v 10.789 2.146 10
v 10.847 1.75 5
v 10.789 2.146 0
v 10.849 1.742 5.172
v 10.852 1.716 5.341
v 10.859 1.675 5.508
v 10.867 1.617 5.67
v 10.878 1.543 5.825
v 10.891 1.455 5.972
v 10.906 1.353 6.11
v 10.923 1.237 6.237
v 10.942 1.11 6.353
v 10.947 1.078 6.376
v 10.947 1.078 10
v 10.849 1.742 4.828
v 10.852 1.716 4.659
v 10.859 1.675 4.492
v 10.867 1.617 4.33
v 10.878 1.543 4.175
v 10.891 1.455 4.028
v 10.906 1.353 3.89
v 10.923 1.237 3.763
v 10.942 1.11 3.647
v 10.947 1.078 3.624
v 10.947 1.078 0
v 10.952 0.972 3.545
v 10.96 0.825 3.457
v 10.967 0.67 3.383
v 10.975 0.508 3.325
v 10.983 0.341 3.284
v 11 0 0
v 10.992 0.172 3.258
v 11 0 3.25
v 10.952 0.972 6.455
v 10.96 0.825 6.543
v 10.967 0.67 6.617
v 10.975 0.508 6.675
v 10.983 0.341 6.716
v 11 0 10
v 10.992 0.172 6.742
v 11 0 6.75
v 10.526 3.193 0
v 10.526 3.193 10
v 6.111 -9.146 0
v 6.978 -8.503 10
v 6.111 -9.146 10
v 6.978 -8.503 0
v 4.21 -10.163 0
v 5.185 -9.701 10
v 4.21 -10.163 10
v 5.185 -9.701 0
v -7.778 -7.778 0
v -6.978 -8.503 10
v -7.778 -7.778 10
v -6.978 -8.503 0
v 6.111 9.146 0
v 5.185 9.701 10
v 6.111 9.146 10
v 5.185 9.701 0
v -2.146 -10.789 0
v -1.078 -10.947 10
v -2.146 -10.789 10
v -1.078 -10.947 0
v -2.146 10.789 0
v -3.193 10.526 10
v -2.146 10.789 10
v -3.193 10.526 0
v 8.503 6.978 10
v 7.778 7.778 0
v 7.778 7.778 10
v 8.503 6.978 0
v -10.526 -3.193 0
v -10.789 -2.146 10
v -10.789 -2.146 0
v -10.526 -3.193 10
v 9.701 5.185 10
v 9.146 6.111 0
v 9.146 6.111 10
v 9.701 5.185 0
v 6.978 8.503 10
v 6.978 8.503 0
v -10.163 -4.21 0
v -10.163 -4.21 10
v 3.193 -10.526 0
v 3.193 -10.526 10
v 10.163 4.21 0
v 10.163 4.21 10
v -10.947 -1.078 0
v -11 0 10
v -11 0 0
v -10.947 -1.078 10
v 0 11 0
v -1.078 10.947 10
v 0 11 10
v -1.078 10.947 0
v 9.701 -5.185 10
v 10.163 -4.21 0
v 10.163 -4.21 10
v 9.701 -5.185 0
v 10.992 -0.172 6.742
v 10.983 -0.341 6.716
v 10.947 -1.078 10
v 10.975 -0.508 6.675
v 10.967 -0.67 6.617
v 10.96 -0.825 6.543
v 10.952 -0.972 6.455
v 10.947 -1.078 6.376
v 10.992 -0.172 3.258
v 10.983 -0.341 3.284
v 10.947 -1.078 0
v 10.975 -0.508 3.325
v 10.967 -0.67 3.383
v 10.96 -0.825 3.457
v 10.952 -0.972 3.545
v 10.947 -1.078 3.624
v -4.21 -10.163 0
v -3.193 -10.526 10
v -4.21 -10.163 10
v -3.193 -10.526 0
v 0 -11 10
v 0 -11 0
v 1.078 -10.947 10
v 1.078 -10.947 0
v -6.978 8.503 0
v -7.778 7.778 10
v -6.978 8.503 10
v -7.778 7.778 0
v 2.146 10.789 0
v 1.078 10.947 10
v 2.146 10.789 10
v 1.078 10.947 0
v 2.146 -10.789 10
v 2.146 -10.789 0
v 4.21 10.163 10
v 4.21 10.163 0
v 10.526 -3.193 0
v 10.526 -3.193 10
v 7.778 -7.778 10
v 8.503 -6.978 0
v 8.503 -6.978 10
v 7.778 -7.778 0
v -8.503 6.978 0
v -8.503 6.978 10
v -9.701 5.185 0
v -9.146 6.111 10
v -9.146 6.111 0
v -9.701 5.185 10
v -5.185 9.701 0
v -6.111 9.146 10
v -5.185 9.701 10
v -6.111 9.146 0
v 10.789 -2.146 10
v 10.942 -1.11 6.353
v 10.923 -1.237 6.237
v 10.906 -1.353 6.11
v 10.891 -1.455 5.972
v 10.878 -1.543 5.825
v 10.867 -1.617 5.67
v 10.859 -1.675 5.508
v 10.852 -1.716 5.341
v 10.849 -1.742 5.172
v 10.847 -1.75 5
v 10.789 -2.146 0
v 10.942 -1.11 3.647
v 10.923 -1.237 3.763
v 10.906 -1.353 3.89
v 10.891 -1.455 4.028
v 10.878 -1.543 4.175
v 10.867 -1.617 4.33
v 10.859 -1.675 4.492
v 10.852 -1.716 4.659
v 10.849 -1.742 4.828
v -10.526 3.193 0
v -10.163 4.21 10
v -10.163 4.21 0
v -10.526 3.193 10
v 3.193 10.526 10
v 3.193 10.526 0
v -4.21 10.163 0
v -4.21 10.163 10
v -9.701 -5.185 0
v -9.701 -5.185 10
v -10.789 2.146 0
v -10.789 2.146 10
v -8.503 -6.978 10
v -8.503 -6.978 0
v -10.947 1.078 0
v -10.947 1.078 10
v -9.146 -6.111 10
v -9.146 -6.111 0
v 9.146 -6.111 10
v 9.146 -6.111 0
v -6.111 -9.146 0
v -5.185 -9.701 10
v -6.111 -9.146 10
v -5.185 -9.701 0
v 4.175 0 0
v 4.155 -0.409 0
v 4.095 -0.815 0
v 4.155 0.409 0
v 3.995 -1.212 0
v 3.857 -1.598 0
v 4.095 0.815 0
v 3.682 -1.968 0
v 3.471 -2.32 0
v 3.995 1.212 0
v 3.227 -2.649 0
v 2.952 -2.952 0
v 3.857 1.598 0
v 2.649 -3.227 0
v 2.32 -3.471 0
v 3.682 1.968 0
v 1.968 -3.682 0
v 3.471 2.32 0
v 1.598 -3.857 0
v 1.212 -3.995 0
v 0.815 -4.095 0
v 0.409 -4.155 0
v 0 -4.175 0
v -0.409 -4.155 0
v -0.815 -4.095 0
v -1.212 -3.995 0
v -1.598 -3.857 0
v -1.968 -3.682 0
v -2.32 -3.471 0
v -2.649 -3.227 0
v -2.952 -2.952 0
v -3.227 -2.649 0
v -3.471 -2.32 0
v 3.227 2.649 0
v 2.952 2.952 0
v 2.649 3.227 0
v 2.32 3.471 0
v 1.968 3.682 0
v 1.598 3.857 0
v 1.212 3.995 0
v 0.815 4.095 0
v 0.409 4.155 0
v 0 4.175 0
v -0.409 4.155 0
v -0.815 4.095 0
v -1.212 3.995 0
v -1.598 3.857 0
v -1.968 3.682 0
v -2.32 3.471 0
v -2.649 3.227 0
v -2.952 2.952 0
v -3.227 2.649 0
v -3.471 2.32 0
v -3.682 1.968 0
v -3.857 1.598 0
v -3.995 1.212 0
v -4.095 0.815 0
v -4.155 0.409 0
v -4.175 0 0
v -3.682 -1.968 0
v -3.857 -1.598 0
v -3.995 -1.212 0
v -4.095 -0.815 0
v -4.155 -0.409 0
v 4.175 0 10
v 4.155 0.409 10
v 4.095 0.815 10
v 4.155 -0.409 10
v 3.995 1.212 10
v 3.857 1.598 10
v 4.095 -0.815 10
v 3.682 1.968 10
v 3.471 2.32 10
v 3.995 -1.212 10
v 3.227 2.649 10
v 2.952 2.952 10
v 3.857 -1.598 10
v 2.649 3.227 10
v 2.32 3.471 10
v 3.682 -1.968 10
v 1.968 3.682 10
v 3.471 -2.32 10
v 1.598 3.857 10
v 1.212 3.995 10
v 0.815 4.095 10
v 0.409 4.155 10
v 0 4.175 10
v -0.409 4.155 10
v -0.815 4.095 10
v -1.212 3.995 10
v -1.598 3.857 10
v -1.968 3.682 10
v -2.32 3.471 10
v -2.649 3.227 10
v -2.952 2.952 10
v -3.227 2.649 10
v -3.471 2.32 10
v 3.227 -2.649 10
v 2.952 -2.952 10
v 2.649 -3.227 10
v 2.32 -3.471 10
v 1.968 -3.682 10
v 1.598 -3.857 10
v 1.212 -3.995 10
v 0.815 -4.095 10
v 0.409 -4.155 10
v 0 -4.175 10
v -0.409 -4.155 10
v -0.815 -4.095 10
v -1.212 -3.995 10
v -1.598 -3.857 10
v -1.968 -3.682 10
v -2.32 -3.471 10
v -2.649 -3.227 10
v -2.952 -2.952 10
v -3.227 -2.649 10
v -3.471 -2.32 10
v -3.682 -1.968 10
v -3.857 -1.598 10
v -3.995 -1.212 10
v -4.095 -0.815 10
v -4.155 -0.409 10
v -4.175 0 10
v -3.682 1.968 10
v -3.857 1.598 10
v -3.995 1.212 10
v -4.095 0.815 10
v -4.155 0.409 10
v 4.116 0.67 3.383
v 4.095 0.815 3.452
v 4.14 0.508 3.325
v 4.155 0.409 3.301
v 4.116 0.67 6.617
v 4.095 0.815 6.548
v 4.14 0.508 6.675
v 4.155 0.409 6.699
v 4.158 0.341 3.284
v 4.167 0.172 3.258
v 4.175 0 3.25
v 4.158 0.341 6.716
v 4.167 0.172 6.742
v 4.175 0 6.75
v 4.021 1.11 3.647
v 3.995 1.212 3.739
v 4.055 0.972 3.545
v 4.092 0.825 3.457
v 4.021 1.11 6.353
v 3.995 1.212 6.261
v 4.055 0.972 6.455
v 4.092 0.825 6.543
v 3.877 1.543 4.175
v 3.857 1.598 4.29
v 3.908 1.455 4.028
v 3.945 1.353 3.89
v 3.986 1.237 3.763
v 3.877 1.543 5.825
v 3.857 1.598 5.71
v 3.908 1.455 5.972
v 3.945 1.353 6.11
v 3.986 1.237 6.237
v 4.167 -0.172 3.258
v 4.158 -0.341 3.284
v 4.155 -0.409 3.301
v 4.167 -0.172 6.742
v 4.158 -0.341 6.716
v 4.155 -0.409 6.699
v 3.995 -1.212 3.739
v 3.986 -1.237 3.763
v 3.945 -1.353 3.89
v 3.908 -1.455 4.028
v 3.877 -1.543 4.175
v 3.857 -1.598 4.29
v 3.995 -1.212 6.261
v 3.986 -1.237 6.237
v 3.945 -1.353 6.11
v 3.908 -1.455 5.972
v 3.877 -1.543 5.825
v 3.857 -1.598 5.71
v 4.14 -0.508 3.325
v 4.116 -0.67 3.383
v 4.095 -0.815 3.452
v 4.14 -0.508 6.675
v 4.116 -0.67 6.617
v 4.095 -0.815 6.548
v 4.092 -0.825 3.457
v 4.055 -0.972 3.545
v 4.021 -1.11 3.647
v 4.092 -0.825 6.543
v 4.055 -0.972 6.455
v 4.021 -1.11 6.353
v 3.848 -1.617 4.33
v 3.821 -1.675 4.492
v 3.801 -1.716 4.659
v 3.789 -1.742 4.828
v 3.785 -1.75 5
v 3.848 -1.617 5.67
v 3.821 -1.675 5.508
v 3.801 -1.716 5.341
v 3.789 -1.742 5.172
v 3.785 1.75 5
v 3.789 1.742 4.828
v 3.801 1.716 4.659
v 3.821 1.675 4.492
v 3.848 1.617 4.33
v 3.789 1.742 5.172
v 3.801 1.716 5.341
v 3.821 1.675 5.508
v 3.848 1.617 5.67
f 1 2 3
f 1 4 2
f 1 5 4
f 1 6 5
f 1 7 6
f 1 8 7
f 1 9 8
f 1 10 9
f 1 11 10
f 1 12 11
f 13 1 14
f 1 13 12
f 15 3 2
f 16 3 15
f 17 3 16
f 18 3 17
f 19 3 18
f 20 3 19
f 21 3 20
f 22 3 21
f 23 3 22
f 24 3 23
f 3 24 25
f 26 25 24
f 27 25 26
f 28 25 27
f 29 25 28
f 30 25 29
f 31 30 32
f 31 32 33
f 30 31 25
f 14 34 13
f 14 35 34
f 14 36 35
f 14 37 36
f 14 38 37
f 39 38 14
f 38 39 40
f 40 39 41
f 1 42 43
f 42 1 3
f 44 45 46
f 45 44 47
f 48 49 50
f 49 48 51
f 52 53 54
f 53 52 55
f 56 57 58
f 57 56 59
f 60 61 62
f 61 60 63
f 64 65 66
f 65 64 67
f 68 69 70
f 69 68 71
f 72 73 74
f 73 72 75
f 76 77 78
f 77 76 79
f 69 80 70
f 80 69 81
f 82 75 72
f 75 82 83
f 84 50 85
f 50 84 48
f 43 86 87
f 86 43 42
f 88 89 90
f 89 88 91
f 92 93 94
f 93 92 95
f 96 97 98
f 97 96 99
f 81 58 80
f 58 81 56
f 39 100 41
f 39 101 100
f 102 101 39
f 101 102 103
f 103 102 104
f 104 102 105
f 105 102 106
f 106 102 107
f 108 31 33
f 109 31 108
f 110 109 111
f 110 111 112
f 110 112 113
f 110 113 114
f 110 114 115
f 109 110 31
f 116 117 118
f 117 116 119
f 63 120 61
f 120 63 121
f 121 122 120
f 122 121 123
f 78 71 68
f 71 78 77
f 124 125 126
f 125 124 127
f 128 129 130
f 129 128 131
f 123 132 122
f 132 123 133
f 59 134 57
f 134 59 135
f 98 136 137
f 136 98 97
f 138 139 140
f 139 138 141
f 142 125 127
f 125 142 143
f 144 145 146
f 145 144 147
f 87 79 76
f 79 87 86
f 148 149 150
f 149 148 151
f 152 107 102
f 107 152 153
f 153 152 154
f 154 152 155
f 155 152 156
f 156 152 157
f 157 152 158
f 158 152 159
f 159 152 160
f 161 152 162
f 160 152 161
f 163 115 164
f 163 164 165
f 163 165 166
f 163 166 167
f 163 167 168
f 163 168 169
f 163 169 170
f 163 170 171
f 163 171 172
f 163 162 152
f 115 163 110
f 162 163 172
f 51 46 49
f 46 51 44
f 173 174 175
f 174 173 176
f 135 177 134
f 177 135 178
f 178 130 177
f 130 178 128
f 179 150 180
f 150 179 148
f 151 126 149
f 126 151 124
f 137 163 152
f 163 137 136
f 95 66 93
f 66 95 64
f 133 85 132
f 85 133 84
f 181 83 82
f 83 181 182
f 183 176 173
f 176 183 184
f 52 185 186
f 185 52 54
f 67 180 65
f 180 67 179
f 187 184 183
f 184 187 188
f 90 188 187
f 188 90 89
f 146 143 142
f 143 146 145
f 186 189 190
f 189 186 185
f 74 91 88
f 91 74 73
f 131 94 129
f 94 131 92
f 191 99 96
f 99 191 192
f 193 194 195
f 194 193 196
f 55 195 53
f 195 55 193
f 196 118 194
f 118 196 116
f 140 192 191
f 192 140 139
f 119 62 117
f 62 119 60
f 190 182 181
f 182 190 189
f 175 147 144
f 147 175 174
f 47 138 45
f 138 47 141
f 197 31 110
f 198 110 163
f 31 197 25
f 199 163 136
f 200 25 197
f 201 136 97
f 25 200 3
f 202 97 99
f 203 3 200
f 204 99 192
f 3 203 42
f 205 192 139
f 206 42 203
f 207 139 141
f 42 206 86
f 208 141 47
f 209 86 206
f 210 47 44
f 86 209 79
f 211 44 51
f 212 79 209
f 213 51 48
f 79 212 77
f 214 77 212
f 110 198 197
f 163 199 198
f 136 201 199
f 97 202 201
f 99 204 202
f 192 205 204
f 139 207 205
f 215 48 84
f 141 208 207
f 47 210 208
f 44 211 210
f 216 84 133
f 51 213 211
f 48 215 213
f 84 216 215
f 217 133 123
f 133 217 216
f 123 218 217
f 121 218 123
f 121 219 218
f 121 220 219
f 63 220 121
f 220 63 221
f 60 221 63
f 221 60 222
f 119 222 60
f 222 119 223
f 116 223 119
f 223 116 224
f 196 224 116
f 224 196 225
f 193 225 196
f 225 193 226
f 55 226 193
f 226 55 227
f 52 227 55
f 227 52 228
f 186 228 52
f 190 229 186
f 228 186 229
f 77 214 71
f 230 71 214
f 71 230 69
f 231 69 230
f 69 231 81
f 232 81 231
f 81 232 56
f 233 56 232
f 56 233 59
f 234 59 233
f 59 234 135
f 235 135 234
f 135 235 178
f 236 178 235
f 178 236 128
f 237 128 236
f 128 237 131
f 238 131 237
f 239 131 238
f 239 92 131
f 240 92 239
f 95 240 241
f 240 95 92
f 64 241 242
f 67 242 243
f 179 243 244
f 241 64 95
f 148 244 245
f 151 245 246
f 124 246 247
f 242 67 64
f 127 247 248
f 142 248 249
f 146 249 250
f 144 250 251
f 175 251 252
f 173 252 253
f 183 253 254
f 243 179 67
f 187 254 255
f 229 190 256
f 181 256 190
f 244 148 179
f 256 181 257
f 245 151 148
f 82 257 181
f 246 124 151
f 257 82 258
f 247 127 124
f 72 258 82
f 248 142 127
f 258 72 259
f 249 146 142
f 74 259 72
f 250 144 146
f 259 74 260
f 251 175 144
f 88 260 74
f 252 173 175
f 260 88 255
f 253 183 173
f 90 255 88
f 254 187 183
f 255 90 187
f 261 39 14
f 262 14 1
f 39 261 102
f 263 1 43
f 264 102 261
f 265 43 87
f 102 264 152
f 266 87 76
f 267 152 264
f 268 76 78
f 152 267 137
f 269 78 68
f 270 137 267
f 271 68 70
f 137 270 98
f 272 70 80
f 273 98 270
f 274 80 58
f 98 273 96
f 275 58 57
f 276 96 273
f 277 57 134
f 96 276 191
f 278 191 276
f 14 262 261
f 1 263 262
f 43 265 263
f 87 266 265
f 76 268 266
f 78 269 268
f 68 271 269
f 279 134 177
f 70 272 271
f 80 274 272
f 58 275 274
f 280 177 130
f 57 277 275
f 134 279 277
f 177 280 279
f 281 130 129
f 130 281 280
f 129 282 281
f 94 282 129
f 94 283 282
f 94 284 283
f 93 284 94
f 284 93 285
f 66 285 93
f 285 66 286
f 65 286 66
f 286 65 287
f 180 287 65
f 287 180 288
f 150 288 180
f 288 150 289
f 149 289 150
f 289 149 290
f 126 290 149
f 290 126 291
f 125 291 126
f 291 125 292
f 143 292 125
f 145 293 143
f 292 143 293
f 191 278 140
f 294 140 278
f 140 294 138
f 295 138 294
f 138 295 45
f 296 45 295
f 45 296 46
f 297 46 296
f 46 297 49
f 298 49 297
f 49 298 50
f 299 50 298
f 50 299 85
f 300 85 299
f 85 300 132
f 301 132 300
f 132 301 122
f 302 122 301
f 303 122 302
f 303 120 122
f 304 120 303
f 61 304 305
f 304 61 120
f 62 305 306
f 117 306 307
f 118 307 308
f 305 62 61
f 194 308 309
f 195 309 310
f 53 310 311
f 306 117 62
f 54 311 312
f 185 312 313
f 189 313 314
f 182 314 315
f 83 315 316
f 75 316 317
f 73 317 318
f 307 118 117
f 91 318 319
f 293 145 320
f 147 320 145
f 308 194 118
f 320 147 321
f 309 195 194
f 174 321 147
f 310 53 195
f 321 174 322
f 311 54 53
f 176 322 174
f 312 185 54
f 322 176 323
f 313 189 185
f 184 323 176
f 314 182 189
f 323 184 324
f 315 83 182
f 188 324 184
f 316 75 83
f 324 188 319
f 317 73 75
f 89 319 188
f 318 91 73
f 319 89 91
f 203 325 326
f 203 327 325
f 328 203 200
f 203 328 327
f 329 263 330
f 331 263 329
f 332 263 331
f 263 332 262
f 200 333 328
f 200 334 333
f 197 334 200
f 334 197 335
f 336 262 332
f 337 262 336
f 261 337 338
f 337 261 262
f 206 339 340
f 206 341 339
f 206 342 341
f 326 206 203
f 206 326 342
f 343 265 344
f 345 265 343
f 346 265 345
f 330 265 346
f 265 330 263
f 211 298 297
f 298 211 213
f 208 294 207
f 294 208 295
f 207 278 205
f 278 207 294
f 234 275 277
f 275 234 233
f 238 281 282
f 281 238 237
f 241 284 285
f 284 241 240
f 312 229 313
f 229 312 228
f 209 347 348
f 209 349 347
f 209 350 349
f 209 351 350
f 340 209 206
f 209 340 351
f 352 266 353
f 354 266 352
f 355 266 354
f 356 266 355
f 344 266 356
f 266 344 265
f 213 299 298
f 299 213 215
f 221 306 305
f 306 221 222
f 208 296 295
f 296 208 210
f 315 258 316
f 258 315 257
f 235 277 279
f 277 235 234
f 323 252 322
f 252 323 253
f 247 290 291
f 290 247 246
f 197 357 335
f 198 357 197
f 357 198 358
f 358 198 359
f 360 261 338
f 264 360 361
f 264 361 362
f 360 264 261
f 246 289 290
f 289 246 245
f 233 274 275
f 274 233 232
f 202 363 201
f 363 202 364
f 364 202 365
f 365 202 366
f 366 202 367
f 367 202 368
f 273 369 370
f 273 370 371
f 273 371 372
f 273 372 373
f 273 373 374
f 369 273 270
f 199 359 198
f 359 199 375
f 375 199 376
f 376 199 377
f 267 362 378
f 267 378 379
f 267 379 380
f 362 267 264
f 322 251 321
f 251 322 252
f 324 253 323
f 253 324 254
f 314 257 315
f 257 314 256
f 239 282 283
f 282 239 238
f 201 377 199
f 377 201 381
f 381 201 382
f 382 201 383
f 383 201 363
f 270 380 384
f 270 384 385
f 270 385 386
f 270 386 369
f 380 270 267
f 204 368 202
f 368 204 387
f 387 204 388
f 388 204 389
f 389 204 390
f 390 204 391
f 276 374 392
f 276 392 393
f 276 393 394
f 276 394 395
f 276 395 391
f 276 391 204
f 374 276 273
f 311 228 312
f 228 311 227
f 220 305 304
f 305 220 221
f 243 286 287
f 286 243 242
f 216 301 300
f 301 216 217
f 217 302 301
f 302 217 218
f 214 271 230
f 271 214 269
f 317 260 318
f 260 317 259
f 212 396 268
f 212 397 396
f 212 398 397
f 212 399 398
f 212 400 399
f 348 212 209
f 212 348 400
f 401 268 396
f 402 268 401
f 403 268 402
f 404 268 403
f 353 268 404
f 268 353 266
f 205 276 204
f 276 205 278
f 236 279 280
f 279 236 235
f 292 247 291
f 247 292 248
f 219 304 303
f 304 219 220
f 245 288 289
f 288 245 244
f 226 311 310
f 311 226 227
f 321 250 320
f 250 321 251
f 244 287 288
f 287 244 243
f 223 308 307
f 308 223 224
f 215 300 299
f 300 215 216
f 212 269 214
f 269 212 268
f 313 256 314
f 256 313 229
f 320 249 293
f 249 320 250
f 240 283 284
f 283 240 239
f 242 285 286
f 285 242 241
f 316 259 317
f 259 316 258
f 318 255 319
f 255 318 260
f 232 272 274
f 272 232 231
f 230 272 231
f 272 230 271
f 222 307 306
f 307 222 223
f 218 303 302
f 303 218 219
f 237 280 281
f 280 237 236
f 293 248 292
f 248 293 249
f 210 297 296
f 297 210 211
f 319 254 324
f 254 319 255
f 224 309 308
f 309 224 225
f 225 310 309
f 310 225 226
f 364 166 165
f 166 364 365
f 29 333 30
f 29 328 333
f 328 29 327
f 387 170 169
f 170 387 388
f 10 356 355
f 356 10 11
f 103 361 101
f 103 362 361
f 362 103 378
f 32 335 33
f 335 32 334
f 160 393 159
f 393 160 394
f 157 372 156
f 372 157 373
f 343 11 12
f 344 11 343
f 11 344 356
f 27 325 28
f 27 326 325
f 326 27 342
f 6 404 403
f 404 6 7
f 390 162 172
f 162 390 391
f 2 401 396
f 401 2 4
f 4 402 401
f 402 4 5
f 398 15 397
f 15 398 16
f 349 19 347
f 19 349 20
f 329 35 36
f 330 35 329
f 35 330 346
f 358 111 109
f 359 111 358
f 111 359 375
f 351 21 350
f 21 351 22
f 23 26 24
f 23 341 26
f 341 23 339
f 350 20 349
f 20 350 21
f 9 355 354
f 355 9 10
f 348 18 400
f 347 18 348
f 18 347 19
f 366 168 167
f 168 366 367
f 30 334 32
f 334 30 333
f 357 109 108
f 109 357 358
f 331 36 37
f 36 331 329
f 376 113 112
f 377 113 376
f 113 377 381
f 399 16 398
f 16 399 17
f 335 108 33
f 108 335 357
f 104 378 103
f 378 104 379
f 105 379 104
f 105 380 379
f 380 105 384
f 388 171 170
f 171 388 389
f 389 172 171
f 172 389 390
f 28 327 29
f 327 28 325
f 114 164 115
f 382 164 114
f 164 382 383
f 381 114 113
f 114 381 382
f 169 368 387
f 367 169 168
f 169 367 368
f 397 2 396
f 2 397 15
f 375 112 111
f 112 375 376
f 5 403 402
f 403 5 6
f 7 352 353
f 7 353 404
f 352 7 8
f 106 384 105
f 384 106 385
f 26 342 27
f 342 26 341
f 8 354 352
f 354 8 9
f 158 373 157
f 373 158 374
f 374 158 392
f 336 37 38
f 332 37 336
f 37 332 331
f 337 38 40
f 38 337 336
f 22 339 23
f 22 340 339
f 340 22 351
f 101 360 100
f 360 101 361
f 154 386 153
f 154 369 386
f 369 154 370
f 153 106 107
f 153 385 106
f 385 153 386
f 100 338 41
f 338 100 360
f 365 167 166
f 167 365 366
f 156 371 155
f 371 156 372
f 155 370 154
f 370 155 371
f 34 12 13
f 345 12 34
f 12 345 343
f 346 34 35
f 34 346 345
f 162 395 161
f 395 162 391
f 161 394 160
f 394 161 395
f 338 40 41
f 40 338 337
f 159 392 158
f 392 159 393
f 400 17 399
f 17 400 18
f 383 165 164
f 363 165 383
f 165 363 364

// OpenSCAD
// file: parameters.scad
// =============================================================================
// Gen-AD Vernier flux-claw dual nano-gap — WOUND-AWARE (HARD GATE)
// Improve Gen-AA: tighter m2m ≤5.5, more copper (155 t), run_clear 0.60
// =============================================================================

wire_awg            = 26;
wire_od             = 0.45;
turns               = 155;      // +10 vs Gen-AA 145
fill                = 0.70;
layers_per_face     = 2;
wind_build_axial    = layers_per_face * wire_od * fill;   // 0.63
wind_build_radial   = 3 * wire_od * fill;                 // 0.945

coil_id_r           = 20.5;
coil_od_r           = 61.0;
span_deg            = 25.0;     // 12 stations; vernier vs 16-pole equiv
former_web          = 1.7;
flange_t            = 0.65;
wall                = 1.2;
slot_w              = 2.4;
mount_hole          = 3.5;
tab_len             = 7.0;

former_bare_h       = former_web + 2 * flange_t;            // 3.0
coil_envelope_h     = former_bare_h + 2 * wind_build_axial; // 4.26

run_clear           = 0.60;
gap_spacer_h        = run_clear + wind_build_axial;         // 1.23
m2m                 = coil_envelope_h + 2 * run_clear;      // 5.46 (beats Gen-AA 6.16)

coil_stations       = 12;
bay_r_in            = coil_id_r - 2.0 - wind_build_radial;
bay_r_out           = coil_od_r + 2.0 + wind_build_radial;
bay_span            = span_deg + 4.0;
bay_offset          = 2.0;
stator_thick        = former_bare_h;
stator_od           = 156.0;
shaft_clear_stator  = 36.0;
coil_mount_r        = 28.0;

// Dual rotors: 8+8 Ø20 vernier poles + 24+24 Ø5 flux claws / edge assists
large_pocket_d      = 20.3;
small_pocket_d      = 5.3;
pocket_h            = 5.2;
large_n             = 8;
R_large             = 50.0;
R_small_inner       = 36.0;     // claw inner
R_small_mid         = 50.0;
R_small_outer       = 64.0;
carrier_od          = 152.0;
carrier_thick       = 7.5;
hub_h               = 10.0;
hub_od              = 30.0;
rotor_b_offset_deg  = 22.5;     // vernier offset

shaft_bore          = 8.35;
bearing_d           = 21.85;
bearing_h           = 7.2;
m3_clear            = 3.5;
bolt_r_inner        = 36.0;
bolt_n_inner        = 6;
flange_bolt_r       = 72.0;
flange_bolt_n       = 6;
brace_r             = 68.0;
brace_d             = 4.3;
brace_n             = 4;

spacer_pad_od       = 14.0;
spacer_pad_id       = m3_clear;
endbell_od          = 156.0;
endbell_thick       = 8.0;
endbell_shaft_clear = 10.0;

$fn = 64;
// main file
// Gen-AD shaft collar — print ×2–4
include <parameters.scad>;
$fn = 64;
od = 22; id = shaft_bore; h = 10; set_d = 3.5;
difference() {
    cylinder(d=od, h=h);
    translate([0, 0, -0.1]) cylinder(d=id, h=h + 0.2);
    translate([0, 0, h/2]) rotate([0, 90, 0]) cylinder(d=set_d, h=od);
}
